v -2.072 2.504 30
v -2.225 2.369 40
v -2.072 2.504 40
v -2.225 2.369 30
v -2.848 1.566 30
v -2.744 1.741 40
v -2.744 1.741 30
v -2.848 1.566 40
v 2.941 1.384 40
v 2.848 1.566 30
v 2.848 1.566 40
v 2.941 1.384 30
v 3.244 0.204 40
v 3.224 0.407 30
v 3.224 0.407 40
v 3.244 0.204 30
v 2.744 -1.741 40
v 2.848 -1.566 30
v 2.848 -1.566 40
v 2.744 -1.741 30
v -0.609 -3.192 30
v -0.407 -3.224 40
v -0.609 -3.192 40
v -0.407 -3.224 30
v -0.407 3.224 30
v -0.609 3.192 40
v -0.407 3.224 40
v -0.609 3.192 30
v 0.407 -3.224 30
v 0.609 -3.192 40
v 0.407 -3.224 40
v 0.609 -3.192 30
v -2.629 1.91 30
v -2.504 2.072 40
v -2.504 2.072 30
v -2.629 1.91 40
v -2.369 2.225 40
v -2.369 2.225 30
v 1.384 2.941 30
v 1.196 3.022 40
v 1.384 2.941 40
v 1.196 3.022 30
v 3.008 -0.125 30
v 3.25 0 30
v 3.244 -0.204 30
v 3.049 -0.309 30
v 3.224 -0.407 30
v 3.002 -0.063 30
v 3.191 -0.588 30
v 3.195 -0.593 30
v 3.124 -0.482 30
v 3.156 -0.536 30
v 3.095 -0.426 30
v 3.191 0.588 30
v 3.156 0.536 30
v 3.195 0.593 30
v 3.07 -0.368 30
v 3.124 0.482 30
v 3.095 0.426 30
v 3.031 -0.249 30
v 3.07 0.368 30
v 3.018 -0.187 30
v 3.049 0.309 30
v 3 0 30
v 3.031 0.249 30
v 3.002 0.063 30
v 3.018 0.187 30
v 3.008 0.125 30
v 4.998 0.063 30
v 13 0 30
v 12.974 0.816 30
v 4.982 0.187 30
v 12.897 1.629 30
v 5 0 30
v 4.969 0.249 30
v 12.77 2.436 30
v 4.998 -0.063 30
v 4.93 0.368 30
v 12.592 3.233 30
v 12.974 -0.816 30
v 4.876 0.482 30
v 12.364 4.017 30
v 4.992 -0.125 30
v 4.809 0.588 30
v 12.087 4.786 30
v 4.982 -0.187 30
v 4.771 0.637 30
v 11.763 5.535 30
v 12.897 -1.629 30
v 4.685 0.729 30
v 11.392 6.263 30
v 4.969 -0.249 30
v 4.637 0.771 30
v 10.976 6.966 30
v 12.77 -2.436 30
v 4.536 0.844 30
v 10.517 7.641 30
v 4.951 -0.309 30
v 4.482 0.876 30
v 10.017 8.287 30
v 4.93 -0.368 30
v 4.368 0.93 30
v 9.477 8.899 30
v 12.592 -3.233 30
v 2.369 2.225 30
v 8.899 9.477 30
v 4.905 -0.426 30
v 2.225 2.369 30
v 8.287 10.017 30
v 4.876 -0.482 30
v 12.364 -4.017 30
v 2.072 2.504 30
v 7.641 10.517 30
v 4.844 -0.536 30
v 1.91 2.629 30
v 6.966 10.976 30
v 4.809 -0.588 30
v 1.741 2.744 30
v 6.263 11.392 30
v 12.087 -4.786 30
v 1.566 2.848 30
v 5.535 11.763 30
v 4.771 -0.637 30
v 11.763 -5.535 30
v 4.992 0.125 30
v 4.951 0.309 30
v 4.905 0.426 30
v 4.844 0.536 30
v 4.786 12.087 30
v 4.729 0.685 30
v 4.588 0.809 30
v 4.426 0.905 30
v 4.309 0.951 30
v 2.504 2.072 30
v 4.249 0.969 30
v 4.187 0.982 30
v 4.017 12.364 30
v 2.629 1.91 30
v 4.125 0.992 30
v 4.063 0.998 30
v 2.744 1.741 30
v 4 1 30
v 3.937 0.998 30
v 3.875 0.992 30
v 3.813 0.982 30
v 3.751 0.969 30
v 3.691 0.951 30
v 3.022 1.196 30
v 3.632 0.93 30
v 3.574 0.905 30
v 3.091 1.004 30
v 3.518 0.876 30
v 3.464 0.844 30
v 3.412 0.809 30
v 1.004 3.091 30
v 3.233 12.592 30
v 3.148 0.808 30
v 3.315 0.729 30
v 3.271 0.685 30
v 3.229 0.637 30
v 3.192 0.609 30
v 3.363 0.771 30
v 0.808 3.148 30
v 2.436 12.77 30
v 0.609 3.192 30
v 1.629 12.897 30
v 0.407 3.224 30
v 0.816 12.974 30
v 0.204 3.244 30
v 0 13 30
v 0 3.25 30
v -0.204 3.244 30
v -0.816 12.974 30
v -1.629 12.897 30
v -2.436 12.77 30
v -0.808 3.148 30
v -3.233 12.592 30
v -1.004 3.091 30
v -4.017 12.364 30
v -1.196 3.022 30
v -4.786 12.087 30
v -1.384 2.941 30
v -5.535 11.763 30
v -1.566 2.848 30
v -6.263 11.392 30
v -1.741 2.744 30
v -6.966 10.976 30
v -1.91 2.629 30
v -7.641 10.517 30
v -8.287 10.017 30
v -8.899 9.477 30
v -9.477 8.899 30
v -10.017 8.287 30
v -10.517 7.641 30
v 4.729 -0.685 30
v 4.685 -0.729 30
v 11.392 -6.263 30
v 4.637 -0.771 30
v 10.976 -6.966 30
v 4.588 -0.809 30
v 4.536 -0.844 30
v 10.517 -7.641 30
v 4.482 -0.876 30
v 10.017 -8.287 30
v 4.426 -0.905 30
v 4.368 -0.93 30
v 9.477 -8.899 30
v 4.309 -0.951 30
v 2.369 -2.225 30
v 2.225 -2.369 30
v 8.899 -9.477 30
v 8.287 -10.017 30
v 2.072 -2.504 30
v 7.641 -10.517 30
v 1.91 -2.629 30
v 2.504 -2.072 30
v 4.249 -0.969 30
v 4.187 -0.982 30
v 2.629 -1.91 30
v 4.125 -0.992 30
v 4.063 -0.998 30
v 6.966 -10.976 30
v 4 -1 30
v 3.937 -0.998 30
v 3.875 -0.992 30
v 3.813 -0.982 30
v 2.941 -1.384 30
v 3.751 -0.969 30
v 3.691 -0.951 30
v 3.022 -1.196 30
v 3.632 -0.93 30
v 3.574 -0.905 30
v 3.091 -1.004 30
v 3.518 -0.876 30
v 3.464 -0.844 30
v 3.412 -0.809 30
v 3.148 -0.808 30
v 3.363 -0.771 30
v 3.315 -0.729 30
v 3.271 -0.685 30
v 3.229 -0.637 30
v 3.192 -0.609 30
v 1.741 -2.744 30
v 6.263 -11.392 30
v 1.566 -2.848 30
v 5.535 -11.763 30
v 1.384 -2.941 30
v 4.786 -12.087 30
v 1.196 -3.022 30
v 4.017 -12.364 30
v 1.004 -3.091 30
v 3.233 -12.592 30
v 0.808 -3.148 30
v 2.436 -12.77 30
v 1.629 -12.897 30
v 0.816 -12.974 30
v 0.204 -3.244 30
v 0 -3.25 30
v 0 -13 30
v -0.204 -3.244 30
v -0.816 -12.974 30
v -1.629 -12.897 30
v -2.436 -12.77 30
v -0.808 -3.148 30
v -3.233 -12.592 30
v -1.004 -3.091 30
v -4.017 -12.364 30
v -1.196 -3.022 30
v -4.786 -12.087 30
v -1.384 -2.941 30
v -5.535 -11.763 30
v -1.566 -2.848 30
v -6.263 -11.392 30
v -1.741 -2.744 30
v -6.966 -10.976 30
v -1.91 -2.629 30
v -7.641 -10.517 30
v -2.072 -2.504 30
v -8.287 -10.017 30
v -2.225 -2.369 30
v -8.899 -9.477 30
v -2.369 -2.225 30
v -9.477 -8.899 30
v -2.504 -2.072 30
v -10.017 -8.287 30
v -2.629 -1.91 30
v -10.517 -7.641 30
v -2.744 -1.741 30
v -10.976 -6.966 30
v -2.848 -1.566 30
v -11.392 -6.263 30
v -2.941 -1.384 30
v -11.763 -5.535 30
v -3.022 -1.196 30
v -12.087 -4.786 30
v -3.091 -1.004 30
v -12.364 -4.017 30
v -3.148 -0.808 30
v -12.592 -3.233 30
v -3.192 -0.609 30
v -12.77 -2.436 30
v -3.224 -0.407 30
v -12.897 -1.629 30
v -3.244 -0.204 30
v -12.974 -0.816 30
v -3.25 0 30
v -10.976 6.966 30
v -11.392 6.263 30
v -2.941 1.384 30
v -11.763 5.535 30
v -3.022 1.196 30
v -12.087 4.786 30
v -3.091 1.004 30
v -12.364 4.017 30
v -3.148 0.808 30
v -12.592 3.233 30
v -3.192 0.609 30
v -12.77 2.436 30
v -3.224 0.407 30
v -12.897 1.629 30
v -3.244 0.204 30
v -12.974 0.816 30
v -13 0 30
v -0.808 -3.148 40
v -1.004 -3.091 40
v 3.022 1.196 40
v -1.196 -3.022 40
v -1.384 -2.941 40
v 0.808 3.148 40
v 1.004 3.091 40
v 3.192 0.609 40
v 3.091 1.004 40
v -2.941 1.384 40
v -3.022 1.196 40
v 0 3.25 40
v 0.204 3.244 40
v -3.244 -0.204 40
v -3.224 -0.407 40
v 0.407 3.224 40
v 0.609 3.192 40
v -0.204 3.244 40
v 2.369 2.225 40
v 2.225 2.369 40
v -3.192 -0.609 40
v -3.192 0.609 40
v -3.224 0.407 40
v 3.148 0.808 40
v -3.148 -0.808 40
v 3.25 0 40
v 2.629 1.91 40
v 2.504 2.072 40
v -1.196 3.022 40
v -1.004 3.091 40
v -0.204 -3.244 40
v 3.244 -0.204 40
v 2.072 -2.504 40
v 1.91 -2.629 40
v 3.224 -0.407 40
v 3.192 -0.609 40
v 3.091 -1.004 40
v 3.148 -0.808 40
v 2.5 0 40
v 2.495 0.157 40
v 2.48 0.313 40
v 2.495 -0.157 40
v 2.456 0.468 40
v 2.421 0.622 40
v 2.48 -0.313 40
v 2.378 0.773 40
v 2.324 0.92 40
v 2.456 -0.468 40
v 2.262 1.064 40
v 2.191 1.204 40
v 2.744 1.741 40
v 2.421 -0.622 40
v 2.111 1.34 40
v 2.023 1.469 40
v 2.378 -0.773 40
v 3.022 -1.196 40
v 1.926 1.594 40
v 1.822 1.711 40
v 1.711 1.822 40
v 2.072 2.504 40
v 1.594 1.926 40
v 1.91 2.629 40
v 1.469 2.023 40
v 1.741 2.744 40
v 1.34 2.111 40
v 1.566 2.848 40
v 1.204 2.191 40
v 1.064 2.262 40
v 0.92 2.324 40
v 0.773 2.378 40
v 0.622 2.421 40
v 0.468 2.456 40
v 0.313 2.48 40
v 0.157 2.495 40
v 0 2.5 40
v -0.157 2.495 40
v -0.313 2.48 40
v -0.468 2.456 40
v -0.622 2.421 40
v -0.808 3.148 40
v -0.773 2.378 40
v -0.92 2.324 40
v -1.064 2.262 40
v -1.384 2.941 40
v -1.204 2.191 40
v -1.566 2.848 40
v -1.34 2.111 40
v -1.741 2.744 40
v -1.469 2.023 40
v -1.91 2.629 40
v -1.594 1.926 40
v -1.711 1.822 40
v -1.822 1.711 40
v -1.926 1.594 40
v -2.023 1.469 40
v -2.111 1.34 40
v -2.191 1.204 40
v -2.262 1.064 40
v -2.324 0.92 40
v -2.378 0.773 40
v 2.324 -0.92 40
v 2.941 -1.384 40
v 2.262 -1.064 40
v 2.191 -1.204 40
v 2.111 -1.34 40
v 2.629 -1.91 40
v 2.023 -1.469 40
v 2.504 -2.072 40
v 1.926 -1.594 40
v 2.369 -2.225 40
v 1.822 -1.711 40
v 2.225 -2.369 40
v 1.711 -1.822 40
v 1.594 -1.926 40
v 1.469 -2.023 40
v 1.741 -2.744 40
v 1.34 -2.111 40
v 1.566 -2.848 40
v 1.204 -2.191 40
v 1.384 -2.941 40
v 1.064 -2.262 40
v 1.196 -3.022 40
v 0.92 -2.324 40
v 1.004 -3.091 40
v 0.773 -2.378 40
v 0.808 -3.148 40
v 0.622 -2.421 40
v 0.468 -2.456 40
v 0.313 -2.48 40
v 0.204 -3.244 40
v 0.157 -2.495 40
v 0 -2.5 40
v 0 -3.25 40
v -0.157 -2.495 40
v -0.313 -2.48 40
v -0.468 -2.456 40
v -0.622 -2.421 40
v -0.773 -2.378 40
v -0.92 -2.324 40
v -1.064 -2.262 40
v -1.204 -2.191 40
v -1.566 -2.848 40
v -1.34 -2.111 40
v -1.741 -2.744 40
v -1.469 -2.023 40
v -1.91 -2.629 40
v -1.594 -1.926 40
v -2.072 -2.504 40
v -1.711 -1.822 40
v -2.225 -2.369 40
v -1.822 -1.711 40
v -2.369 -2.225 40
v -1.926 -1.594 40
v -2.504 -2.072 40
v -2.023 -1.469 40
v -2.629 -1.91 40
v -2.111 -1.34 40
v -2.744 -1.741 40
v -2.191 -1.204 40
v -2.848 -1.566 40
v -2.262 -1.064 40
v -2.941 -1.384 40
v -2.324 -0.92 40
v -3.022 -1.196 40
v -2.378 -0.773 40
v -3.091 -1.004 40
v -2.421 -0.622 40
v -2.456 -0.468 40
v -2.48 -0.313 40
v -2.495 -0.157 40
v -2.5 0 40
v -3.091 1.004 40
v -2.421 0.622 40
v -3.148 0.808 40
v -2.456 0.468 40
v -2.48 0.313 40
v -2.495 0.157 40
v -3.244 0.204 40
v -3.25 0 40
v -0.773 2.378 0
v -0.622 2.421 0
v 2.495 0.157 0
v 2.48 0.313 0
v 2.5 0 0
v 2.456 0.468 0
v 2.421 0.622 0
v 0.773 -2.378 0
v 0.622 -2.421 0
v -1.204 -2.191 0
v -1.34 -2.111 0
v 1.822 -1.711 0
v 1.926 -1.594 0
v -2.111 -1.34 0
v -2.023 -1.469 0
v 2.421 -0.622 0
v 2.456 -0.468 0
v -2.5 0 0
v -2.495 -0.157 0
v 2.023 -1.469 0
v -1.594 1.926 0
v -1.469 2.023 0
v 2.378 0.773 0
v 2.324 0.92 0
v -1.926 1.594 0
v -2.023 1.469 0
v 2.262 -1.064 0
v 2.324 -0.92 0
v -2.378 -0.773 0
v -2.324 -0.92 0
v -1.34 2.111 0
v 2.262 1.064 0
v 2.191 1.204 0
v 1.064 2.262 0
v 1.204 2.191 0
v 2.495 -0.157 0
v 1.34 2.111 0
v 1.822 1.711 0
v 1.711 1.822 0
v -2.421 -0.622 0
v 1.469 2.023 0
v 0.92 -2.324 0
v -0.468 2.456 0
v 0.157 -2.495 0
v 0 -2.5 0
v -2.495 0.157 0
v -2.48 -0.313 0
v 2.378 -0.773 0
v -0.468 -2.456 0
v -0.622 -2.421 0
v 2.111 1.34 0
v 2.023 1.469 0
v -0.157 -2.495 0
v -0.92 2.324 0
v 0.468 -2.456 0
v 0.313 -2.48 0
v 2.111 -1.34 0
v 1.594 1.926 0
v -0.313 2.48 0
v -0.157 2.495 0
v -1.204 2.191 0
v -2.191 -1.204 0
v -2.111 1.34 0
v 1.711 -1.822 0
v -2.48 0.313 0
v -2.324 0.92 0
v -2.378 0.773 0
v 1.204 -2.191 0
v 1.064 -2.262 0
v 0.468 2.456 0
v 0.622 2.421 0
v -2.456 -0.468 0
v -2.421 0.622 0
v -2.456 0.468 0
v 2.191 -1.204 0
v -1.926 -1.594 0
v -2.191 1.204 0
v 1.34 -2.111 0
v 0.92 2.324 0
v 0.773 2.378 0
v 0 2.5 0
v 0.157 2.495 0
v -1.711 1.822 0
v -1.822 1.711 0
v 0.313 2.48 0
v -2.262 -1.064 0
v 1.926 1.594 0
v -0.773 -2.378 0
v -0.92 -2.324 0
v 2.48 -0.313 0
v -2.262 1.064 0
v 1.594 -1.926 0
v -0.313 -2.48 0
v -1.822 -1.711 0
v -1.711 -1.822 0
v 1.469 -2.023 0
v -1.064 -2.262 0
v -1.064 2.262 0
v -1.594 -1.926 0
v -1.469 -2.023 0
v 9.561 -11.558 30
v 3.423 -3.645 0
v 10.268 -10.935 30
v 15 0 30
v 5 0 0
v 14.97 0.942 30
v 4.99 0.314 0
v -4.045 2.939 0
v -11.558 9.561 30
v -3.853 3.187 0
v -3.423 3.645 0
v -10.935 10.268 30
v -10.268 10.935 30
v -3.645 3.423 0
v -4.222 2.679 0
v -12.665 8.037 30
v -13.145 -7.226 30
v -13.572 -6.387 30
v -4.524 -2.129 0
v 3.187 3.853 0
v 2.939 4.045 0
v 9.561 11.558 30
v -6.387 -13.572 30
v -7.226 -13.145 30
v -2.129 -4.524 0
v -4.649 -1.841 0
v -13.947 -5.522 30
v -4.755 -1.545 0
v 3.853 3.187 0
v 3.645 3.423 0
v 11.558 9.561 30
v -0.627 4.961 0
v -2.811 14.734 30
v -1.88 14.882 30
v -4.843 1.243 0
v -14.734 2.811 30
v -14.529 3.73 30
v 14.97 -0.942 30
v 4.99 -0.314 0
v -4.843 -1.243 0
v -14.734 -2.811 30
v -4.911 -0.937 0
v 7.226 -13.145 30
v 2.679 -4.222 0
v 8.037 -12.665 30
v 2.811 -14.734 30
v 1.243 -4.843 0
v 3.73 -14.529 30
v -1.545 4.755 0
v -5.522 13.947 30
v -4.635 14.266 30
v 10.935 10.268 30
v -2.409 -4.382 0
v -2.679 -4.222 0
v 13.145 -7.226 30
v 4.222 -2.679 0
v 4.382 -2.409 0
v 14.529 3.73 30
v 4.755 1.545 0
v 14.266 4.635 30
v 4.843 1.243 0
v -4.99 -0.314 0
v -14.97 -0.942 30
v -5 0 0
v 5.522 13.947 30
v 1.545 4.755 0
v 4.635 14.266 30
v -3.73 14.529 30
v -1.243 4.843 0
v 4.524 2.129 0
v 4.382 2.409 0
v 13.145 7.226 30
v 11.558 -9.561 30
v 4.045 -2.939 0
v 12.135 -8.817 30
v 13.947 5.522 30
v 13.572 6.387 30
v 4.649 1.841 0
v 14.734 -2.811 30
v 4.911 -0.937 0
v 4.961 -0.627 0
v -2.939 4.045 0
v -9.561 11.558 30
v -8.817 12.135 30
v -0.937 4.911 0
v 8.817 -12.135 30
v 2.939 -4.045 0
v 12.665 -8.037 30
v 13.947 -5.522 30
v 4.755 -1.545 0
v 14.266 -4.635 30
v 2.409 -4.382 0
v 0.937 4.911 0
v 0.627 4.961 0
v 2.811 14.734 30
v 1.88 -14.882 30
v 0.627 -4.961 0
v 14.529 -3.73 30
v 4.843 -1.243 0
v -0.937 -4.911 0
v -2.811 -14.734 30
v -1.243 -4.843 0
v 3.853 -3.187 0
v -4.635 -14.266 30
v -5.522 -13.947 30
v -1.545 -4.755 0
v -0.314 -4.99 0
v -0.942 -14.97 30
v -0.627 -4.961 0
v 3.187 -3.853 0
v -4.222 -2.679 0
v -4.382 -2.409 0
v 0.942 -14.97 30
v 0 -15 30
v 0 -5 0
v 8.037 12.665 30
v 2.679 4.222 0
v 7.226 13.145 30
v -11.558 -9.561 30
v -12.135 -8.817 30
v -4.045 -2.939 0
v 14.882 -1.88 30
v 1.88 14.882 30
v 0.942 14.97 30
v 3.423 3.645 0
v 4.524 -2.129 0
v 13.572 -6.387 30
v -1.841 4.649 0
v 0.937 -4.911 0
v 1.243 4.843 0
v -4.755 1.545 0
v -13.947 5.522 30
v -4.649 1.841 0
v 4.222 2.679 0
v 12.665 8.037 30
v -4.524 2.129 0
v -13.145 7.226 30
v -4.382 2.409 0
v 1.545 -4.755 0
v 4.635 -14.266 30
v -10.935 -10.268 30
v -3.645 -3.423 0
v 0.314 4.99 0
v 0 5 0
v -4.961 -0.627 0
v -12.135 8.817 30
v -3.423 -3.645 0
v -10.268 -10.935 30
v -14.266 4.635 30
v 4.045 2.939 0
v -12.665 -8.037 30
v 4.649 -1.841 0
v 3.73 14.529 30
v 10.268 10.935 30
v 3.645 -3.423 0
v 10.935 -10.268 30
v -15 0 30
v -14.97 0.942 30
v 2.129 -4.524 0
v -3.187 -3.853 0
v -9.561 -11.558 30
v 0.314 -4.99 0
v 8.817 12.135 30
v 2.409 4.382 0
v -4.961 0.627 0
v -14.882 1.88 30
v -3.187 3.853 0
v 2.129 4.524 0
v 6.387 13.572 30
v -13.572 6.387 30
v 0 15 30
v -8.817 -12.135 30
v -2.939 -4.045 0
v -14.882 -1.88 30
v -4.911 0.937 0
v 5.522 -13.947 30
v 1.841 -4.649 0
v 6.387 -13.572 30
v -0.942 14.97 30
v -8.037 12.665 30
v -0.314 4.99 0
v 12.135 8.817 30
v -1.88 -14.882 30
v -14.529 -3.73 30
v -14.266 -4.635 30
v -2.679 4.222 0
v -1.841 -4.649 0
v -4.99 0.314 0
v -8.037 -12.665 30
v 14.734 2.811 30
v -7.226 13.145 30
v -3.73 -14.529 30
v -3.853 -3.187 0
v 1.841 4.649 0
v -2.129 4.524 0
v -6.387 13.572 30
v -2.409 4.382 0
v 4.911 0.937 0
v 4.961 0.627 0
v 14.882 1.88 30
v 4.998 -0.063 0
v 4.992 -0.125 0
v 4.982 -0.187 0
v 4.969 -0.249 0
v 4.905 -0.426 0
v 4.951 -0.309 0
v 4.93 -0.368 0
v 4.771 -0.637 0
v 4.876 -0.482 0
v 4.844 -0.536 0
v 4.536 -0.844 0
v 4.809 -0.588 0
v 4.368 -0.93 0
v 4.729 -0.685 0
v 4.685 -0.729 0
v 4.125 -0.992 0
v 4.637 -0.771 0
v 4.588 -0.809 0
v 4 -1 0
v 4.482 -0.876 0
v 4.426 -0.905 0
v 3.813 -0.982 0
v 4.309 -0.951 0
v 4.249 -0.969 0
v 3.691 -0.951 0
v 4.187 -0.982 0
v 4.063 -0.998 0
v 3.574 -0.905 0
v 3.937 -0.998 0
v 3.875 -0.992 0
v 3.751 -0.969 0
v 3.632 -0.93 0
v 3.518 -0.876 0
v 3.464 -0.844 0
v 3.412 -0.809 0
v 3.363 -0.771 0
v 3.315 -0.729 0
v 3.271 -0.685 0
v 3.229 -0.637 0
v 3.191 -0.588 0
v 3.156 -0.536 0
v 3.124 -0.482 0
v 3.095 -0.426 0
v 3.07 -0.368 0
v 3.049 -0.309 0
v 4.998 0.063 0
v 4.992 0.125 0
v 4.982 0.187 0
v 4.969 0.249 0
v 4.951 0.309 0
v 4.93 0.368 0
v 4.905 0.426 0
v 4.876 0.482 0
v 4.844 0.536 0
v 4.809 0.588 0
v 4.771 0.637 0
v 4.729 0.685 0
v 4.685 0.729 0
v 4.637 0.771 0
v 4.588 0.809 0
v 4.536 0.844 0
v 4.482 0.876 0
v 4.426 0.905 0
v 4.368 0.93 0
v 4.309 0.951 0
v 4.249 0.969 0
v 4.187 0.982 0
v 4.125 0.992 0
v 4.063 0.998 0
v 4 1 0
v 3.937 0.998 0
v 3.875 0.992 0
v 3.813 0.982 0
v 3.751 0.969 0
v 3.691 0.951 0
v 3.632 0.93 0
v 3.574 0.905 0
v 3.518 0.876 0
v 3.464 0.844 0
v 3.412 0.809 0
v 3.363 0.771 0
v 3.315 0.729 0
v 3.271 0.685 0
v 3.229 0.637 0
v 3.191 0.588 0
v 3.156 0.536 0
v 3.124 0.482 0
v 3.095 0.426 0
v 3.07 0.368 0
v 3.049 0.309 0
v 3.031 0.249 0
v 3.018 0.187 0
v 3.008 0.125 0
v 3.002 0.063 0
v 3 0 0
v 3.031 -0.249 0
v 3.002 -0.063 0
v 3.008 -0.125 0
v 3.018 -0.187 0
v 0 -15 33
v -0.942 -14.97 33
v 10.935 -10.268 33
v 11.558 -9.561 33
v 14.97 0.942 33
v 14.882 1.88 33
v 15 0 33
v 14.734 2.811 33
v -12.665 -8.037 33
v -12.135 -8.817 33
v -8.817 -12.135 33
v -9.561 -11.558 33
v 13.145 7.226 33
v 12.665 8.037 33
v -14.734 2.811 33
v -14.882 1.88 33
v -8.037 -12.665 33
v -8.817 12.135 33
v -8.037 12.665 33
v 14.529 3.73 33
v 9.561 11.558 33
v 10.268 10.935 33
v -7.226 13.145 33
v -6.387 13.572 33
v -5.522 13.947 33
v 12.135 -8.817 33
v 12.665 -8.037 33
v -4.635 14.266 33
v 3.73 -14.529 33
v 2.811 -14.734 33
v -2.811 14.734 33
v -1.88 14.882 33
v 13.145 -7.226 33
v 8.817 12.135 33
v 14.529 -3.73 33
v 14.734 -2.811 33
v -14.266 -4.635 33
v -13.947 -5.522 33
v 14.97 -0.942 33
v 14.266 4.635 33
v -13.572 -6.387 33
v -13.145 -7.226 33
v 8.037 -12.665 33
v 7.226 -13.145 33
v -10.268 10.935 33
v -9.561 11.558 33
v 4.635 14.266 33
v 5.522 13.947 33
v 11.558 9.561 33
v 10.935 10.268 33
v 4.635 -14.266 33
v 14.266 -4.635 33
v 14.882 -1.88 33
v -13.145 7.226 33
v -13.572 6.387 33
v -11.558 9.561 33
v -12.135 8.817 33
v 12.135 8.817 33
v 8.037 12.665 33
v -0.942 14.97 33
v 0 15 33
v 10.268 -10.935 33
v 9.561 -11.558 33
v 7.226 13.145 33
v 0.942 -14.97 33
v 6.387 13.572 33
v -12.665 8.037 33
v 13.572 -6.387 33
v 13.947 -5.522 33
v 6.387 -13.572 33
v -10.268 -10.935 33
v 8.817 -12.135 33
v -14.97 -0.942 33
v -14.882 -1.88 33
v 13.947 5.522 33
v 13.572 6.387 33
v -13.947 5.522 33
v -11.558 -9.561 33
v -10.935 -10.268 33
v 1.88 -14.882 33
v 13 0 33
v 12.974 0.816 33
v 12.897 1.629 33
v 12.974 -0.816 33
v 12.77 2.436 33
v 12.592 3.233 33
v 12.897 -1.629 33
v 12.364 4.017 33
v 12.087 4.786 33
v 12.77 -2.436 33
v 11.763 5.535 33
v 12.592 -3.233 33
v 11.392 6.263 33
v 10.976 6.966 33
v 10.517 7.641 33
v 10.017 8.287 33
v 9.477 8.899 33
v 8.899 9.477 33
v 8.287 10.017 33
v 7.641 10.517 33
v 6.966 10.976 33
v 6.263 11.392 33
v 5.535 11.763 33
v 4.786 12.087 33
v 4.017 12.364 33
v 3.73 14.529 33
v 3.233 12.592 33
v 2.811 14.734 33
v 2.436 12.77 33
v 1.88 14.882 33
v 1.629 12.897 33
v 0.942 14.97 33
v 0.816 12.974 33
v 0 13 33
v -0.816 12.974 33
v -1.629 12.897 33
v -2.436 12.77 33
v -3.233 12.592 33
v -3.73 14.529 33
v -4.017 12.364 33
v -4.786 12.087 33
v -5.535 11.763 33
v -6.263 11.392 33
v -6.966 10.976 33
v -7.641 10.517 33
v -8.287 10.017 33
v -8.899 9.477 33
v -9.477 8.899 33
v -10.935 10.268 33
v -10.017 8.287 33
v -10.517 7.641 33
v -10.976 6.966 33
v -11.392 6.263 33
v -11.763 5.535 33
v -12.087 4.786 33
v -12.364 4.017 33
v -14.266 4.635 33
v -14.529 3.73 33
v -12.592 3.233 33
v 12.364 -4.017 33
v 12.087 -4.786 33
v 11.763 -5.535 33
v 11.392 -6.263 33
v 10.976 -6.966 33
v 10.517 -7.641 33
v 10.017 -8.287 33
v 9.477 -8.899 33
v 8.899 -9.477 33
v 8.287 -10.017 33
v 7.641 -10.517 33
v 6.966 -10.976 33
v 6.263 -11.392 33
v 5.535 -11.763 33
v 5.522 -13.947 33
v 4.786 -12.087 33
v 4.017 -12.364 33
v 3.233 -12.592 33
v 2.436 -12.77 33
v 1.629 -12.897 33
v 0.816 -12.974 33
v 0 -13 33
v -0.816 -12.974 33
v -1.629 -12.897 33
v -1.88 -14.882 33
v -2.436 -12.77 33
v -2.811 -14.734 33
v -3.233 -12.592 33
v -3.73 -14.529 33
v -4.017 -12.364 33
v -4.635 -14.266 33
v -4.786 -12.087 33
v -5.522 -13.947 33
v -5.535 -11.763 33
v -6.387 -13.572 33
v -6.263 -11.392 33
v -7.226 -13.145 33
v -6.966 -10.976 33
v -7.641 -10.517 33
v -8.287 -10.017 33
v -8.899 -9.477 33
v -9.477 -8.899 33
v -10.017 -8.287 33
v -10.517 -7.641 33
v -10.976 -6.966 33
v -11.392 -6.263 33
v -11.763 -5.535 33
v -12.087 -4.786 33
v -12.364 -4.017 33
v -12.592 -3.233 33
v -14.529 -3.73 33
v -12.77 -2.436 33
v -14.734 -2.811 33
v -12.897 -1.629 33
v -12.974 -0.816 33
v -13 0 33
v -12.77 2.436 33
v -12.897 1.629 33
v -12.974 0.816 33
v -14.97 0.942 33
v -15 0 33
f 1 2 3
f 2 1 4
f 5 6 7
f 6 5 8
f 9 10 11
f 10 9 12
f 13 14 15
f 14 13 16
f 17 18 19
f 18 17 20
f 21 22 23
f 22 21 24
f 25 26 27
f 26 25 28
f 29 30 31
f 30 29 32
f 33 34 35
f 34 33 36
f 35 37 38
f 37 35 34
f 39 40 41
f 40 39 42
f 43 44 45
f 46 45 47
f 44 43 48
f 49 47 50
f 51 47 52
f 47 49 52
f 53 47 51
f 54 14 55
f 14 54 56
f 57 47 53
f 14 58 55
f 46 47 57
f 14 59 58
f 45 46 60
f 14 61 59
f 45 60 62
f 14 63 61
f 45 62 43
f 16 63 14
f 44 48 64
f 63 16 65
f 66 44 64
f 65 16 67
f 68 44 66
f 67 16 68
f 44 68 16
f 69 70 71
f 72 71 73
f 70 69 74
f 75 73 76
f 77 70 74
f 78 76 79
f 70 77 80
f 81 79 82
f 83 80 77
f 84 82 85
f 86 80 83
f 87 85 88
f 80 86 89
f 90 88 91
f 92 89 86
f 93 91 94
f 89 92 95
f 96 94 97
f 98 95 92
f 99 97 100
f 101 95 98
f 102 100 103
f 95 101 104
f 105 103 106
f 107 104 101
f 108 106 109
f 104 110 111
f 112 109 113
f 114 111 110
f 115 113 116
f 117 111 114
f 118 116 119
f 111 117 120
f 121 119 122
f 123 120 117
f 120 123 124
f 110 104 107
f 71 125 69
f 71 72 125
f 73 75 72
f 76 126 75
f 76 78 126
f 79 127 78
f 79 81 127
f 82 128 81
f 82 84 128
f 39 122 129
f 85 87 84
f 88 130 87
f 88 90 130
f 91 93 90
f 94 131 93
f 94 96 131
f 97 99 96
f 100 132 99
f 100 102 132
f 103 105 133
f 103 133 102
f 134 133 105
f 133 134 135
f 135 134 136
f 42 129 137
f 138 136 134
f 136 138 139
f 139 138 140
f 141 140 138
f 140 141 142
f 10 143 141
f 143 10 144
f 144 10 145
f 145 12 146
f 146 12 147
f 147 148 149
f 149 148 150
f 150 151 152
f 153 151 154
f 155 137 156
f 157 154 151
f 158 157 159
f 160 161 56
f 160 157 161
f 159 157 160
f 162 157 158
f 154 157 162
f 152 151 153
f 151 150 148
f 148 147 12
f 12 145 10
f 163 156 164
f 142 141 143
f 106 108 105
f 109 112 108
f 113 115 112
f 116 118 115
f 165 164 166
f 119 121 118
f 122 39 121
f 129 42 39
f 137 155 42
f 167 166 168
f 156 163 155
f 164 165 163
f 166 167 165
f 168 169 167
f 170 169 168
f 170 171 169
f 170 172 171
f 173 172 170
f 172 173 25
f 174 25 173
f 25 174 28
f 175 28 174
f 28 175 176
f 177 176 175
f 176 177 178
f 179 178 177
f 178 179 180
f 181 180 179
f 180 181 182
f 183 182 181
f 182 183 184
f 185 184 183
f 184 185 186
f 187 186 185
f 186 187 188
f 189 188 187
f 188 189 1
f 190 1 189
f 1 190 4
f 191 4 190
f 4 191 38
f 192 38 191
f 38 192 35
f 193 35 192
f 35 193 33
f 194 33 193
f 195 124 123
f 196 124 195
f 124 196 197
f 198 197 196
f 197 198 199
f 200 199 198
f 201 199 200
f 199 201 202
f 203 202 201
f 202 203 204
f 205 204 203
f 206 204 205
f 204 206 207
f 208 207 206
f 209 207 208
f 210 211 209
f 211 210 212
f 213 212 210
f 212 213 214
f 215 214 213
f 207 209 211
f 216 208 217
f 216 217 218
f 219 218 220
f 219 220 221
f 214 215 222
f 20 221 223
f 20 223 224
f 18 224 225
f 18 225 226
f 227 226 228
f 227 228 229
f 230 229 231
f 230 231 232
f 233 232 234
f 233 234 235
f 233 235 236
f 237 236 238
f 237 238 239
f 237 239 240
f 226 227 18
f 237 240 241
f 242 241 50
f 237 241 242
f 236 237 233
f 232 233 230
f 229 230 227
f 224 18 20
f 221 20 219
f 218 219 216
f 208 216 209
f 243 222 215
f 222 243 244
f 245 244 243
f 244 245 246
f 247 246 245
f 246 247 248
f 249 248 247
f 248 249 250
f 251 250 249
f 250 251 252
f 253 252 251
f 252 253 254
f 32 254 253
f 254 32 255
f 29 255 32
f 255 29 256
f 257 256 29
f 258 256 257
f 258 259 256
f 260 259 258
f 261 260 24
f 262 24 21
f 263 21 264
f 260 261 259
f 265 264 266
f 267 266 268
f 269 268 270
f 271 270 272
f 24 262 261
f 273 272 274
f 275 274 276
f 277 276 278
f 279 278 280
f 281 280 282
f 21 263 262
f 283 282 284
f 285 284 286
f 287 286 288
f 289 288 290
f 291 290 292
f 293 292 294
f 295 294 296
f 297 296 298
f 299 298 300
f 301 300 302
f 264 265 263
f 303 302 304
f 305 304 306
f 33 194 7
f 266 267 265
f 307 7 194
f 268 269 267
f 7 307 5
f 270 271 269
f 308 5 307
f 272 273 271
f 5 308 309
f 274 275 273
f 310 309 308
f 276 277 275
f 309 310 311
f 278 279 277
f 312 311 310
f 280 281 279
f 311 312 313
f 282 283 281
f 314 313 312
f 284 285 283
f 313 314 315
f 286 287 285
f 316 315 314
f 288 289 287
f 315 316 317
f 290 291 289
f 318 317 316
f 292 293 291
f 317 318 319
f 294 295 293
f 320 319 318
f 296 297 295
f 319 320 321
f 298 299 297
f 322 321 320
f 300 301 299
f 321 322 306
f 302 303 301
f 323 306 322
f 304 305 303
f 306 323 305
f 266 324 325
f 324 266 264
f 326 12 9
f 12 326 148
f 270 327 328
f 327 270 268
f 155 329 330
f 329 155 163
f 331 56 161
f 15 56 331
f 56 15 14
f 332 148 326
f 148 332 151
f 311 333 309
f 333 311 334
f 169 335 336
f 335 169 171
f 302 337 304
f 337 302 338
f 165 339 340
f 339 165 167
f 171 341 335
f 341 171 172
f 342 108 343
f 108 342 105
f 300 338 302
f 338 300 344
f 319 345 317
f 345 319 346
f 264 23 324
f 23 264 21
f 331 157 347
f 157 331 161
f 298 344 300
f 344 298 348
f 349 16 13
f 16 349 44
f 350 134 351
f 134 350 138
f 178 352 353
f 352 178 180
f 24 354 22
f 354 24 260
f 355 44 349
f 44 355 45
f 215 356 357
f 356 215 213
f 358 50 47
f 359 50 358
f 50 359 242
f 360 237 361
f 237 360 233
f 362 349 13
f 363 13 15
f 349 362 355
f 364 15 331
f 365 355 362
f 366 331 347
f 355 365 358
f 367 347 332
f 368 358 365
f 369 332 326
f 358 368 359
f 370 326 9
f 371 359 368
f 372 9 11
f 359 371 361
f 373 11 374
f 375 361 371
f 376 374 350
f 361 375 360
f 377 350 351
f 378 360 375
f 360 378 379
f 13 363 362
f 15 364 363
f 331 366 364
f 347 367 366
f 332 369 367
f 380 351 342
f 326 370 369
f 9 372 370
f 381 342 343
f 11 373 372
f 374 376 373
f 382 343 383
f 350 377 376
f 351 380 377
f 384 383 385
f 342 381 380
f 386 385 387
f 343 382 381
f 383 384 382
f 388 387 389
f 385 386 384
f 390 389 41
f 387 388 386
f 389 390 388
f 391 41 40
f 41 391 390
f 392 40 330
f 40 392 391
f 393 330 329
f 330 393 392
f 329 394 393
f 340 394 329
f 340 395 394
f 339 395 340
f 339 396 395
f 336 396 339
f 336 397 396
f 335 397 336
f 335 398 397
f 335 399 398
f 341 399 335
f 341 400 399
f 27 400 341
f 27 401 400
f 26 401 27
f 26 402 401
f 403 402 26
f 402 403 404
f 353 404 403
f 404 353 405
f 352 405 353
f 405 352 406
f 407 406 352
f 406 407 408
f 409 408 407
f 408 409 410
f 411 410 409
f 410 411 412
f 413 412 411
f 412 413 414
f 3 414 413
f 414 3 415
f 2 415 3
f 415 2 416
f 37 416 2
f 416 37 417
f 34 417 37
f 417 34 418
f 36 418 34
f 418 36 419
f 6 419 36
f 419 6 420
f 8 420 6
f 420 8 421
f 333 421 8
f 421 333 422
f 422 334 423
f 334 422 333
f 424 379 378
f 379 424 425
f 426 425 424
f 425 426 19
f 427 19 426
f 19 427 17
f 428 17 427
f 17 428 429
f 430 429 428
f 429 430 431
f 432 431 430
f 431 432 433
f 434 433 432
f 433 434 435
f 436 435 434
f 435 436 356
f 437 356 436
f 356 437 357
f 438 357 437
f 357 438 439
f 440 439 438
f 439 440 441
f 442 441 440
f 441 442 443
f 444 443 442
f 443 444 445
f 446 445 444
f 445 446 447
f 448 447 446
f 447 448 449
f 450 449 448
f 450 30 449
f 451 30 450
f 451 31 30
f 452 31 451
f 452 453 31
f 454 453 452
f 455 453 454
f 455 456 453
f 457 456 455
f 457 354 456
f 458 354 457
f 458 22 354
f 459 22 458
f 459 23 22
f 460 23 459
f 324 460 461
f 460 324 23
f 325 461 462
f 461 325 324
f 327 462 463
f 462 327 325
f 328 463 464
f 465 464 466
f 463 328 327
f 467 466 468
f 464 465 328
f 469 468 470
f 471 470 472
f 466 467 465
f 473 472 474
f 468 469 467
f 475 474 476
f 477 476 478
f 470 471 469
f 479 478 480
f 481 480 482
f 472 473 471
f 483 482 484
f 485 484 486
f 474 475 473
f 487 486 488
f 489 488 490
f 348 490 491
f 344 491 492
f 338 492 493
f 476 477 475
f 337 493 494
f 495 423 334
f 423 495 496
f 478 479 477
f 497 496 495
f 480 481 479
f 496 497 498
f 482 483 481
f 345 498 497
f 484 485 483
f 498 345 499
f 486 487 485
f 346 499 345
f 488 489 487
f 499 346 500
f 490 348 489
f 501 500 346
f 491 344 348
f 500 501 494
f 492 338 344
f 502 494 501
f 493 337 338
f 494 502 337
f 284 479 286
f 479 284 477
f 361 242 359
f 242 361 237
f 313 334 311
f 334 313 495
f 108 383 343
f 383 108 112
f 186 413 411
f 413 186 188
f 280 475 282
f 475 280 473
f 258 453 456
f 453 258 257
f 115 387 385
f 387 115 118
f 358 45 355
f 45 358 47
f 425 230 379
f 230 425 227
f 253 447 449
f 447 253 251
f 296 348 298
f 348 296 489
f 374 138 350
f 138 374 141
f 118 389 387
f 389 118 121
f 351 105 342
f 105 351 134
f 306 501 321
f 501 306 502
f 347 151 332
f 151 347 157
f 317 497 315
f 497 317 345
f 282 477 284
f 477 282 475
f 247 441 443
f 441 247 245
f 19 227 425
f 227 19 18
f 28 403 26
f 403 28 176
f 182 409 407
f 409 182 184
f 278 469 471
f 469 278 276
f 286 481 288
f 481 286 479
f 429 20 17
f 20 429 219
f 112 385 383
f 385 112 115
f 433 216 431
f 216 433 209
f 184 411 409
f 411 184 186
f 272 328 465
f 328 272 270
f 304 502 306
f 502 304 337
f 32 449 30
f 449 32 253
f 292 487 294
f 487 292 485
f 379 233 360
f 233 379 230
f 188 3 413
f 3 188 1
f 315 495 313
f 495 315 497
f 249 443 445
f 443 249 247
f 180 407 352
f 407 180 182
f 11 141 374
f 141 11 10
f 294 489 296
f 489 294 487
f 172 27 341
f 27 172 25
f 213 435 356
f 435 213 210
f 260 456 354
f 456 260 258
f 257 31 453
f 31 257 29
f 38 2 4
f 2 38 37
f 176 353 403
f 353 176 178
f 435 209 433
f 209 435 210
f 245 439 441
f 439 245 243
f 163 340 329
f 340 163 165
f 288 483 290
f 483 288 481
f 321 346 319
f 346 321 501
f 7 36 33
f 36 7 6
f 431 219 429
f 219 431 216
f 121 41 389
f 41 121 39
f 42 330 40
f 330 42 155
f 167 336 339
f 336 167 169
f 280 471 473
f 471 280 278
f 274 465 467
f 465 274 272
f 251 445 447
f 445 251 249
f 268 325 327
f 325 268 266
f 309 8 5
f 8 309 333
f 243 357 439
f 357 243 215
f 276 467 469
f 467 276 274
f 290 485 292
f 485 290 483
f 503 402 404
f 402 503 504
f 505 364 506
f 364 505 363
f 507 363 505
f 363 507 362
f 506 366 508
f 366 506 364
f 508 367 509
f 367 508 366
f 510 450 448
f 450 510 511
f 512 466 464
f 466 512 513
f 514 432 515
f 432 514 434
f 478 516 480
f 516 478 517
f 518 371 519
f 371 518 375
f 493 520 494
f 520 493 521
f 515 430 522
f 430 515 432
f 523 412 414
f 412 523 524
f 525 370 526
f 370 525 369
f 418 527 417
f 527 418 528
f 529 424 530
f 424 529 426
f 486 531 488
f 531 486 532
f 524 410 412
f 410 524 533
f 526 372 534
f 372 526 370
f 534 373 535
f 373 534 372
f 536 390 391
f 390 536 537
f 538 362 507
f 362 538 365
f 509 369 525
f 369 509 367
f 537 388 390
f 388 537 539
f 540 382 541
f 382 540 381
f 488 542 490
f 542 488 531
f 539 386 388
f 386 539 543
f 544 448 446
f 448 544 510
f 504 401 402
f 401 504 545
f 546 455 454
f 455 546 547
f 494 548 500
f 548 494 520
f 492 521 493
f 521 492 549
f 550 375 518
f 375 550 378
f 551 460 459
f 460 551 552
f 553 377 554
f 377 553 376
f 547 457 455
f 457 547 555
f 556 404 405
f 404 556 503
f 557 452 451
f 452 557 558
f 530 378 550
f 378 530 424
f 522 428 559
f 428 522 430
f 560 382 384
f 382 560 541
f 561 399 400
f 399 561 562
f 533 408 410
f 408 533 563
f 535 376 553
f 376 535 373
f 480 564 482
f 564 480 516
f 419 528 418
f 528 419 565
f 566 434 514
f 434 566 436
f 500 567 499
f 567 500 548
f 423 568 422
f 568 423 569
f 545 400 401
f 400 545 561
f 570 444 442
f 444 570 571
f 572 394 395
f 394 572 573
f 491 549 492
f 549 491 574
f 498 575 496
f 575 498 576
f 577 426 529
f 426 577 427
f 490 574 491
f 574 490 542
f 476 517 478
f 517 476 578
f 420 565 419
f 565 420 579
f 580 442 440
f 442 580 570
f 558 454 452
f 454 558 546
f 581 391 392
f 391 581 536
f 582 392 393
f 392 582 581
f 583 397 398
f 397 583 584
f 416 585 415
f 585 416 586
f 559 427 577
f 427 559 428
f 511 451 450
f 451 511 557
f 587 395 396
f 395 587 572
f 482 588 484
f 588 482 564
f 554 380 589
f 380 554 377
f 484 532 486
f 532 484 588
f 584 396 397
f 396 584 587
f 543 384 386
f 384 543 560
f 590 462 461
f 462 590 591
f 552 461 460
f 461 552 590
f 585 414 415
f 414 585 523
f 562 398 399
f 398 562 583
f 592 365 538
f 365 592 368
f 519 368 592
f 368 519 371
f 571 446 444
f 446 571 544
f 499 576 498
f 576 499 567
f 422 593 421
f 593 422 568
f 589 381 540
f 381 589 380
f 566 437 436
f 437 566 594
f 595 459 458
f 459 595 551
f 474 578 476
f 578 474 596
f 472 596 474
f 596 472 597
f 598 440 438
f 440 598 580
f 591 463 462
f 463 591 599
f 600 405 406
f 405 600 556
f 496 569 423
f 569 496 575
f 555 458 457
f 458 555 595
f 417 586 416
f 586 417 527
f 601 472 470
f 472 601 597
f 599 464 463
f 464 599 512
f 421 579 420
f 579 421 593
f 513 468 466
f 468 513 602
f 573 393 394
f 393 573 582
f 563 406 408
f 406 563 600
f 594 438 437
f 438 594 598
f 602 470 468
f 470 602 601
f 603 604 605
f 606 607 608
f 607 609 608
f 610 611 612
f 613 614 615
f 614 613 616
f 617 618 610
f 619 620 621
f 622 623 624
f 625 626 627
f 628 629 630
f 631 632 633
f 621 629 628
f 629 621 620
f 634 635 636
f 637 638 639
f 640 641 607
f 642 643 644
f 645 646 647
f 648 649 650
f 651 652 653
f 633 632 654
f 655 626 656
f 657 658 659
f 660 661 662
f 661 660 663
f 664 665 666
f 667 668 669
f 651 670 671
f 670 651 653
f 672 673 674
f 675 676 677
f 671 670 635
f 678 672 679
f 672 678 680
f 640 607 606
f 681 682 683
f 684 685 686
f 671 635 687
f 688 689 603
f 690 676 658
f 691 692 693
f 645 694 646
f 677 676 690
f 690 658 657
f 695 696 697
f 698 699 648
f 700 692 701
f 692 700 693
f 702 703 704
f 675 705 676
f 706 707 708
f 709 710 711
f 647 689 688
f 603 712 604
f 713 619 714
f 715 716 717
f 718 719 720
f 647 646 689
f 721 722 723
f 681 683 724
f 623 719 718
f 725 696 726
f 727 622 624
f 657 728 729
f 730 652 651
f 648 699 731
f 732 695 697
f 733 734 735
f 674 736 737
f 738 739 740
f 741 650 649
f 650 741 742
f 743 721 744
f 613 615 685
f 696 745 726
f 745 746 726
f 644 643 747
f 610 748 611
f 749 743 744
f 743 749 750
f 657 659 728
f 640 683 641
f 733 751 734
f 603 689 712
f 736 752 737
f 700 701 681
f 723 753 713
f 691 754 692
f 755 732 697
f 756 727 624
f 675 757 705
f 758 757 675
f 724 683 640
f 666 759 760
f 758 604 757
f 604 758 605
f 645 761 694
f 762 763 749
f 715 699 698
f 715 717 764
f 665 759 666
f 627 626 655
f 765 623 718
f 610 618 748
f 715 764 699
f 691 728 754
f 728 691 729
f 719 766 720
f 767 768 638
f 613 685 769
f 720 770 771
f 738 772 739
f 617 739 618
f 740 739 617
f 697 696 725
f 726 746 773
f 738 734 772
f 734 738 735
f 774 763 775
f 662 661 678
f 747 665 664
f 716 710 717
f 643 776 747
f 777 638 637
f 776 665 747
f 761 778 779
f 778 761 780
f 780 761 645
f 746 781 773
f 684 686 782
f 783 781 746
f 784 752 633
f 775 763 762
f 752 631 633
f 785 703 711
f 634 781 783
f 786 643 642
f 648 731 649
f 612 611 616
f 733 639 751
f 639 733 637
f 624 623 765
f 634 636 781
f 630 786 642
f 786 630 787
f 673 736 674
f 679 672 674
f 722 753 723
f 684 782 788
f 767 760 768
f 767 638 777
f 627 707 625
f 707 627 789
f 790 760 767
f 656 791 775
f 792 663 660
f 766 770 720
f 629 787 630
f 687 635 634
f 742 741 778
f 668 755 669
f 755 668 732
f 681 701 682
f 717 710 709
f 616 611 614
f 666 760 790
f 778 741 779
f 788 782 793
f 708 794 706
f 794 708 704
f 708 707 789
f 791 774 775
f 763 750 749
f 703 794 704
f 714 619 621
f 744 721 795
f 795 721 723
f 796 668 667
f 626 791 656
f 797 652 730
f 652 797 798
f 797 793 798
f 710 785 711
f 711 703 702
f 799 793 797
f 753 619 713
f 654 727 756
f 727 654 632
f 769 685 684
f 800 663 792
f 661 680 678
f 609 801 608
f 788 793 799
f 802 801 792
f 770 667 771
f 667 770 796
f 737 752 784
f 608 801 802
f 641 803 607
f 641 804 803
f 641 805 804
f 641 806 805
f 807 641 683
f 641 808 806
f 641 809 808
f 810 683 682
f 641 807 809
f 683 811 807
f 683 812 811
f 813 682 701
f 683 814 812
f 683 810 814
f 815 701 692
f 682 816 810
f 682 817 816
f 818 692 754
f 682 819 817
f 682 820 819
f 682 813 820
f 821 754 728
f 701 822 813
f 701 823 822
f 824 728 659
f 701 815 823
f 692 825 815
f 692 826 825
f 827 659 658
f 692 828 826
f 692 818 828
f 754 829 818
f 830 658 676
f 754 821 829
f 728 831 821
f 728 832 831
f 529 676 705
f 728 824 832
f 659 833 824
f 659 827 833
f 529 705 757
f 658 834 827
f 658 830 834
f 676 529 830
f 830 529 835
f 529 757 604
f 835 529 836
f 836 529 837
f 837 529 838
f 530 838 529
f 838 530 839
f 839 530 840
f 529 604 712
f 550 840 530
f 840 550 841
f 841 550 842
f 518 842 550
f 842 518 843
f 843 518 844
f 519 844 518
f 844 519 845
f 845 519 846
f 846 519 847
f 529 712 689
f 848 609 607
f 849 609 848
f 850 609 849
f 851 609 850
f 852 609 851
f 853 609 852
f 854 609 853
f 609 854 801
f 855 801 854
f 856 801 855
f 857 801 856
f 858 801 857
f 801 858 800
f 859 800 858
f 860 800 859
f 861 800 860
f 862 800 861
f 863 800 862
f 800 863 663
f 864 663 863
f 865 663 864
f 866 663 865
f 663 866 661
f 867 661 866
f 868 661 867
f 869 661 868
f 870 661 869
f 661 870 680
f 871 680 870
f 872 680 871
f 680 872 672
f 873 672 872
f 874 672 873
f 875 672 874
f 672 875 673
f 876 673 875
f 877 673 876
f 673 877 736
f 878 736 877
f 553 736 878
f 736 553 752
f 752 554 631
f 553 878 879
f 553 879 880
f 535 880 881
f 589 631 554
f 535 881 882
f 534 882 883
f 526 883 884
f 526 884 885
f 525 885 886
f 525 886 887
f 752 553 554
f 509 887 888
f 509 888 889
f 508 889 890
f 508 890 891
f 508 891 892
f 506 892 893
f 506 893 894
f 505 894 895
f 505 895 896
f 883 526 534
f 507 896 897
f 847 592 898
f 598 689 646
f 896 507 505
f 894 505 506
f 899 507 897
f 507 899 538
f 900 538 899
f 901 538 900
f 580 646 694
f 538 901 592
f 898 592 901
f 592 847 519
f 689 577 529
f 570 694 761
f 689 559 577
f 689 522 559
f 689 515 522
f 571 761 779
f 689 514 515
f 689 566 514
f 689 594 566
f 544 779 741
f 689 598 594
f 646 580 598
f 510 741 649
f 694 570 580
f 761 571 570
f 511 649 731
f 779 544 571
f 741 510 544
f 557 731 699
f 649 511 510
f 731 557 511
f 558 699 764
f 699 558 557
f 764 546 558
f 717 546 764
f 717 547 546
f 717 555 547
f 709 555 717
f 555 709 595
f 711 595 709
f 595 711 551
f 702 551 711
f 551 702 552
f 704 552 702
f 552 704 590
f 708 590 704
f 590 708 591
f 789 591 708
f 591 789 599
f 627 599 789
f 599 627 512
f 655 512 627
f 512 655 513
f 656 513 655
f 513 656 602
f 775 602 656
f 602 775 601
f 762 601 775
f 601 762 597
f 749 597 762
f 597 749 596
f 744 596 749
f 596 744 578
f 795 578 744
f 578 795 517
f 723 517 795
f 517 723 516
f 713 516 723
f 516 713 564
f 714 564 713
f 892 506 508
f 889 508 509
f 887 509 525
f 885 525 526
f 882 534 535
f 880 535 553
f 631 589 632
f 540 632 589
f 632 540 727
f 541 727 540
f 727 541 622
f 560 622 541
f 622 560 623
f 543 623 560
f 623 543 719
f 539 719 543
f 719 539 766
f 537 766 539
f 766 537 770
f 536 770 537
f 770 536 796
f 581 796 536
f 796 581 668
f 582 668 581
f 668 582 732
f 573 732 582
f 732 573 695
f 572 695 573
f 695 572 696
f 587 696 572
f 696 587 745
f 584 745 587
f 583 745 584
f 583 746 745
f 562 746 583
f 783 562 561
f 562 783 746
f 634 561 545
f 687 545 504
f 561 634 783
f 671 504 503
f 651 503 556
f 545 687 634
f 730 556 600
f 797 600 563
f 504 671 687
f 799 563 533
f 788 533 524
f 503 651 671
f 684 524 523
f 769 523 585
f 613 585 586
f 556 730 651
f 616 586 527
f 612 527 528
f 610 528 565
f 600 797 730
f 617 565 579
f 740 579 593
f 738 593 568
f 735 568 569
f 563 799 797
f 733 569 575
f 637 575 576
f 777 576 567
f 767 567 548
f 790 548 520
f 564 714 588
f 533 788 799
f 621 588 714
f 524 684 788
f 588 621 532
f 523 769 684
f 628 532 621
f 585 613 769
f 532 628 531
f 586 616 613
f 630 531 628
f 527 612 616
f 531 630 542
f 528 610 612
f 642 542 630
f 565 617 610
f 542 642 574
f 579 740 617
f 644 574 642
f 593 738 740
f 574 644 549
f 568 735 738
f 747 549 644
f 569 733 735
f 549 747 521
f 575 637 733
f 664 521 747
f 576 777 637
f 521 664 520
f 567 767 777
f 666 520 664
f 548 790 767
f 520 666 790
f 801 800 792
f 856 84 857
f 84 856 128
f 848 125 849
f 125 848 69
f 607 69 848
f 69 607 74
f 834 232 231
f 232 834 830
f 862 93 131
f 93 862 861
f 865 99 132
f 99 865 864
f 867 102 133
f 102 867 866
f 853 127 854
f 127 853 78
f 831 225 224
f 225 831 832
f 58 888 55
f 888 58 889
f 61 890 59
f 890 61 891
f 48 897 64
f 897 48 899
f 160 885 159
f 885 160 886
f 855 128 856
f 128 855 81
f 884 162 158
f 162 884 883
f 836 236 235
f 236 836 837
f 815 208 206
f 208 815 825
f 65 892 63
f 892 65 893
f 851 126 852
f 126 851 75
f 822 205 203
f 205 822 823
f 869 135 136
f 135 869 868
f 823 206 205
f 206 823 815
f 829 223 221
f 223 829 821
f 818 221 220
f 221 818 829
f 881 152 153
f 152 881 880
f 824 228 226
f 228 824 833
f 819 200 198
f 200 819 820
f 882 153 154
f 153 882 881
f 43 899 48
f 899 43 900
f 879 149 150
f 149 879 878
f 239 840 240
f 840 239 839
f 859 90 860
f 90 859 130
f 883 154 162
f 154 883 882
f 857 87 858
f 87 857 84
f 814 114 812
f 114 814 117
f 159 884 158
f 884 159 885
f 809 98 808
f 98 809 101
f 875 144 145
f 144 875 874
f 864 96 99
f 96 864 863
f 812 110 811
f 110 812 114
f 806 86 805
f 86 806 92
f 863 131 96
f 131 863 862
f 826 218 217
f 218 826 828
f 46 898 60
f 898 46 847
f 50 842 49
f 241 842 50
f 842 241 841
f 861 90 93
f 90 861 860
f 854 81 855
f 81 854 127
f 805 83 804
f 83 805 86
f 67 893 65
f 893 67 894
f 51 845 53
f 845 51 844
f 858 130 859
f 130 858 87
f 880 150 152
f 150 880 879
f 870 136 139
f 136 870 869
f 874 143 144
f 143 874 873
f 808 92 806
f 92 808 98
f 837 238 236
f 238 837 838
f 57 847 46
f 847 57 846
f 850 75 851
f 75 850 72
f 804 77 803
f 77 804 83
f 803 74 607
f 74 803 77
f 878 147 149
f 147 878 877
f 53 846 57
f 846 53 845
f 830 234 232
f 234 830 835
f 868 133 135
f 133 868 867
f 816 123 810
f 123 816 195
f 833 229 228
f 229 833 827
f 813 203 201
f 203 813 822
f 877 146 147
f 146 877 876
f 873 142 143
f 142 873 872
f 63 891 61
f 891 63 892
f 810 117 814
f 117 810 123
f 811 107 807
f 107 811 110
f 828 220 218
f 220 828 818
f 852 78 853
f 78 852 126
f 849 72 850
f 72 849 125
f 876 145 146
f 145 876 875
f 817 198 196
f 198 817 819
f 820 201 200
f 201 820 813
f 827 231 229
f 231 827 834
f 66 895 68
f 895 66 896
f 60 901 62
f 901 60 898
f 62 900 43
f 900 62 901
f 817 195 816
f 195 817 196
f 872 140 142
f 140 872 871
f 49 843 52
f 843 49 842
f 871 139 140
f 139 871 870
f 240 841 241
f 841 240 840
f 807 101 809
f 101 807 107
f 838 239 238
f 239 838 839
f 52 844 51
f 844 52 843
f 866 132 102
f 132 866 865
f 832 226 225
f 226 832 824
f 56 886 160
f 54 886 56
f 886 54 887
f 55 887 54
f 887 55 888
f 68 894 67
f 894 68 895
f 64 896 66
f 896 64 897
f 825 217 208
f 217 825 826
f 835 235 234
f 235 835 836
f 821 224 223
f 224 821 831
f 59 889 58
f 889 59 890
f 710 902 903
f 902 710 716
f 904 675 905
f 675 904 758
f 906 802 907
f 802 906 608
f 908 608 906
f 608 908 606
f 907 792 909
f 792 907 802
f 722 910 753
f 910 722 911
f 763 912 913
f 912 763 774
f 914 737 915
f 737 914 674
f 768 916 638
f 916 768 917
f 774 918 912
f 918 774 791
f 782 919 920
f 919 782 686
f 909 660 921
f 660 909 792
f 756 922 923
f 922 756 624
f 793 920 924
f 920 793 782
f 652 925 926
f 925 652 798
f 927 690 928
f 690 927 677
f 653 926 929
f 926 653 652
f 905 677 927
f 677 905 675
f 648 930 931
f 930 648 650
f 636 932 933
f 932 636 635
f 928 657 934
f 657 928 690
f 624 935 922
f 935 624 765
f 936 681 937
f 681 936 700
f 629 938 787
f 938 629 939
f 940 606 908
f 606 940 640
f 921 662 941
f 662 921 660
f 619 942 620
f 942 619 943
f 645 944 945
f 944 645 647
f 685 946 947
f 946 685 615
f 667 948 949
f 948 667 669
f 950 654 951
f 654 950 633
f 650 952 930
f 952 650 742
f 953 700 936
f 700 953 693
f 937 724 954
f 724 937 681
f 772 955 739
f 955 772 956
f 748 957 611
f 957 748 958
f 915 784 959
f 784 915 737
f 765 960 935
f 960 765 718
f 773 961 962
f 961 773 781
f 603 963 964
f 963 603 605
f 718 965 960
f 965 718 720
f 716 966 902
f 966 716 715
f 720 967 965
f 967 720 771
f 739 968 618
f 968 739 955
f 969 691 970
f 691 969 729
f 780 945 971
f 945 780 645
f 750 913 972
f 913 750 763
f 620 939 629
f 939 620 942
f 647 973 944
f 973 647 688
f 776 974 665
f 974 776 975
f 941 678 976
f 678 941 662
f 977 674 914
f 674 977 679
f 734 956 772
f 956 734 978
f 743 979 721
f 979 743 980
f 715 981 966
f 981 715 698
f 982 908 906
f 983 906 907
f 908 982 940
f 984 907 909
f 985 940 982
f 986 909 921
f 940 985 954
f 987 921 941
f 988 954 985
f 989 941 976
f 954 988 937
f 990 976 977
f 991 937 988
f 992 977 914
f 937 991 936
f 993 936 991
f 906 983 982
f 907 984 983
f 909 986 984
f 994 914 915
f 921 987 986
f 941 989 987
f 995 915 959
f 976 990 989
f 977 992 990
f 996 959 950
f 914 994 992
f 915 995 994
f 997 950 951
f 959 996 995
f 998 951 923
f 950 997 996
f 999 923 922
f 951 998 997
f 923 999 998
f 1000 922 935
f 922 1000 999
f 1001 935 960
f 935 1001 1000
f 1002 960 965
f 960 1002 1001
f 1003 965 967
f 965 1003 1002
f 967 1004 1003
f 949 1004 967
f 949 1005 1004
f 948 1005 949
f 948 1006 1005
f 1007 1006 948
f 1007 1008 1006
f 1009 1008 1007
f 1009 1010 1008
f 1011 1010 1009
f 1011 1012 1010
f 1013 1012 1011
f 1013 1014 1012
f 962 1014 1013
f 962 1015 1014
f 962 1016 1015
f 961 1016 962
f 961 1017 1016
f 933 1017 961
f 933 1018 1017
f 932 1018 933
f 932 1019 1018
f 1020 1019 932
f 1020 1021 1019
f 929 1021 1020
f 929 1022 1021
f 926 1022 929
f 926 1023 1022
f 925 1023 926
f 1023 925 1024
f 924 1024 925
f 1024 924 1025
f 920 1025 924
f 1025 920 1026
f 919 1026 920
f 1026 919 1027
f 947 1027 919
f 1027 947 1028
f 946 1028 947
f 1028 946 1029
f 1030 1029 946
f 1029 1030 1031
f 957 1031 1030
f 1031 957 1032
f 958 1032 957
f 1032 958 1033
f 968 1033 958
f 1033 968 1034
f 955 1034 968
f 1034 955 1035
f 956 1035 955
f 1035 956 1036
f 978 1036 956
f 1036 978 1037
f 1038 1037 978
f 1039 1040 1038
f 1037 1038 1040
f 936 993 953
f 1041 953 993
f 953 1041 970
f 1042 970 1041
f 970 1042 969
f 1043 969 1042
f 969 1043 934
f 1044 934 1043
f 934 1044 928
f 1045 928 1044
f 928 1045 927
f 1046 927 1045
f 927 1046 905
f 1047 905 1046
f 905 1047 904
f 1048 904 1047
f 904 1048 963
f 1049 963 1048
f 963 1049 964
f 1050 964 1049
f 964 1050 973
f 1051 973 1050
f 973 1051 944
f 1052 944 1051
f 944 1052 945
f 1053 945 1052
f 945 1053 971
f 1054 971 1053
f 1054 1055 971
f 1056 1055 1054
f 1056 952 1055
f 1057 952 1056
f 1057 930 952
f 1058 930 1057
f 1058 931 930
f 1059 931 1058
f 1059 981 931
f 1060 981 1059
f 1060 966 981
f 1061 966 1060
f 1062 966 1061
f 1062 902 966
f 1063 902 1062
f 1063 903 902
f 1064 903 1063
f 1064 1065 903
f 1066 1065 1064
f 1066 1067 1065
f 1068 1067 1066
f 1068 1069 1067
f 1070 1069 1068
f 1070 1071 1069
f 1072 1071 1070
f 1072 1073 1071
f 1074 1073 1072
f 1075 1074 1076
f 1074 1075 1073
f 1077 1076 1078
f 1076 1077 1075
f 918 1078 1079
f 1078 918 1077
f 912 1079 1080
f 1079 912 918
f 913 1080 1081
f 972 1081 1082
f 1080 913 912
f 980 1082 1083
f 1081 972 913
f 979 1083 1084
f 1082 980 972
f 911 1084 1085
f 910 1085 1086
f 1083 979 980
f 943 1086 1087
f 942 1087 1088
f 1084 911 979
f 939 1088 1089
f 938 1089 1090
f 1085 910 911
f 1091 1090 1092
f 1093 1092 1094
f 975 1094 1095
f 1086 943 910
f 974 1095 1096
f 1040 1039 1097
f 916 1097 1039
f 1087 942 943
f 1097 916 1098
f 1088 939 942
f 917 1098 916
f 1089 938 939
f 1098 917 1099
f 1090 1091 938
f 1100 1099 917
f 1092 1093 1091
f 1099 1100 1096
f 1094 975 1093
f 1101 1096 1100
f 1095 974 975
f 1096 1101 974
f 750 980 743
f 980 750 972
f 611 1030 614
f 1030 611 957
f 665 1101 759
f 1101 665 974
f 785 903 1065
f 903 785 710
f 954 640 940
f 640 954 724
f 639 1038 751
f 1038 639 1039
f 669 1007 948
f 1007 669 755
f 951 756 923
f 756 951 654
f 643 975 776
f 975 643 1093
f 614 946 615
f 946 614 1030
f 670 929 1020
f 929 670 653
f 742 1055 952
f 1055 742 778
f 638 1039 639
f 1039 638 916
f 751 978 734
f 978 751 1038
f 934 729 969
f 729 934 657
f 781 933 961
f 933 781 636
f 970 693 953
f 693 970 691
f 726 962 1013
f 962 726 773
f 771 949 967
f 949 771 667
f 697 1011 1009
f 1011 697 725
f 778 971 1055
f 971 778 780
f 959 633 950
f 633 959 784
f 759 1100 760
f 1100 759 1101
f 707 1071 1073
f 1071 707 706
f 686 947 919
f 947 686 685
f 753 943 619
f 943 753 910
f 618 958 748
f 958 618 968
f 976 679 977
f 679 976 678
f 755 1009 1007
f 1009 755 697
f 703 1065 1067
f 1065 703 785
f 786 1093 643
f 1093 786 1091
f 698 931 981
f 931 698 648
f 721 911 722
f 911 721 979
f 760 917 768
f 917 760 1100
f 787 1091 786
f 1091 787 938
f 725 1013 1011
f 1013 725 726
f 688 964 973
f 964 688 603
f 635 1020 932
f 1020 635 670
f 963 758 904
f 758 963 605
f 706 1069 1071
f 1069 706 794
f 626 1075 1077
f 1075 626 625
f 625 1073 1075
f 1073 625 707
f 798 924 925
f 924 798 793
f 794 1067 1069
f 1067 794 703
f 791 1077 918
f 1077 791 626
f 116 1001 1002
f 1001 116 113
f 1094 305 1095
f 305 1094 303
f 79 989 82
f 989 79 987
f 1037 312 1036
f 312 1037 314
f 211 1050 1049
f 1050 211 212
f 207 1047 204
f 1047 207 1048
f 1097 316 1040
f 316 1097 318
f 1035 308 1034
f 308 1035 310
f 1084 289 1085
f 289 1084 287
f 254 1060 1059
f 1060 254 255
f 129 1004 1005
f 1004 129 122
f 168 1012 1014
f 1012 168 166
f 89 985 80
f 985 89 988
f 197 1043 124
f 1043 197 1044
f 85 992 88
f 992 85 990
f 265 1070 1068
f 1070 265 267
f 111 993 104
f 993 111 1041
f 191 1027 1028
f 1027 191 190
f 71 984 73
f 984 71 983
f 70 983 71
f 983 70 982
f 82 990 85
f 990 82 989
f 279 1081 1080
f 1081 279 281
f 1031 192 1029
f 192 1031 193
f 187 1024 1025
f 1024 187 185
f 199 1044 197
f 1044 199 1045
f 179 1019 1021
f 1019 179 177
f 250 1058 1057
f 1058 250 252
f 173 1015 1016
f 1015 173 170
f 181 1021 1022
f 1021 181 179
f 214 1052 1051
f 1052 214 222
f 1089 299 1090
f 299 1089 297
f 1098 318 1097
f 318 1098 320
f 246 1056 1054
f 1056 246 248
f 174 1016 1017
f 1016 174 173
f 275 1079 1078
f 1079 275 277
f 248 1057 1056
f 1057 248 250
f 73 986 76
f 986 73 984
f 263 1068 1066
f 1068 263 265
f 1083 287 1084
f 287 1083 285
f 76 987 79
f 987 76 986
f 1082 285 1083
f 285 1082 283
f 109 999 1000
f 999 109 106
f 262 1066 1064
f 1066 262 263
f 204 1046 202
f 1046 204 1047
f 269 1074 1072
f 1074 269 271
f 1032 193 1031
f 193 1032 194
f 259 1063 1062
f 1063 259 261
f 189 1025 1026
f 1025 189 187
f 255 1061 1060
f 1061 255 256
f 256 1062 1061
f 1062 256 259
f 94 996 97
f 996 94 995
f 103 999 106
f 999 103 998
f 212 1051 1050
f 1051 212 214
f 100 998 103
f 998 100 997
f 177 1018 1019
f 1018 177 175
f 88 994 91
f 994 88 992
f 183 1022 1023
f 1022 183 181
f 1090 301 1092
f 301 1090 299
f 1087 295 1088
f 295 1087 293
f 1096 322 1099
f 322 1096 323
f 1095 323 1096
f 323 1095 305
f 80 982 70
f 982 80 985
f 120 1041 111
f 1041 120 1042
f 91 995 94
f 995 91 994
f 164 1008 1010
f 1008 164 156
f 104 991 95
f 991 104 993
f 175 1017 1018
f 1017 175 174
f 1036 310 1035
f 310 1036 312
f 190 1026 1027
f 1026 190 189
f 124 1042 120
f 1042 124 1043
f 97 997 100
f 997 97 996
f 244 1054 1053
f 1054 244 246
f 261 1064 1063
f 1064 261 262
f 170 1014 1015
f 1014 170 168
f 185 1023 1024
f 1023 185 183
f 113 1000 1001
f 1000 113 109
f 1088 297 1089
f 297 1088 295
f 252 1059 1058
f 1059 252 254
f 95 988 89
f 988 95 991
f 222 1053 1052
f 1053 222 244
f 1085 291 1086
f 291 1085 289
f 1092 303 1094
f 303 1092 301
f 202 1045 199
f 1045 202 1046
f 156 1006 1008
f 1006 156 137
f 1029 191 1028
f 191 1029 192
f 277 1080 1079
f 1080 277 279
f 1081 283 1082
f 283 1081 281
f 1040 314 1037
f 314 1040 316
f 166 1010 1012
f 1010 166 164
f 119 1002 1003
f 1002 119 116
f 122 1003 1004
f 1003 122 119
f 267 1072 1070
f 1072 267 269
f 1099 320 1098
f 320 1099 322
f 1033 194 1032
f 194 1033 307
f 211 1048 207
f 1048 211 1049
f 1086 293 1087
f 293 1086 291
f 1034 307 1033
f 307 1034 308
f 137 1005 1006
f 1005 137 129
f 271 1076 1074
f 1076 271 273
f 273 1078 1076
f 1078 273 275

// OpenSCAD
/*
    Design of an adapter to fill ciss tanks using Epson 102 series or similar
    
    The idea is to remove the cap of the ink tank we want to refill, position the adapter and then place the bottle to fill. Lift the bottle once the desired ink level has been reached.
    Ideally, there should be an adapter per ink colour, which should be washed with water and dried after use.
    
    ©Filippo Falezza 2022, released under GPLv3 and followings
    
    Scale= 1unit/1mm
*/

/*
* NEED to measure the followings:
* tank hole diameter
* tank hole ring cut diameter (optional) - il gradino che c'e' nel buco per intendersi
* epson refill inlet diameter
*/

//Variables
$fn=100;

air_hole = 2;
air_offset = 4;
inlet_outer_dia = 6.5;
inlet_inner_dia = 5;
inlet_height = 7+3;
cylinder_diameter = 20;
cylinder_diameter_1 = 30;
cylinder_height = 30;
//lower diameter is currently 10mm diameter, which looks ok

ring_offset = 20;
ring_height = 3;
ring_thickness = 5;
ring_vertical_offset = -5;

edge_height = 3;
edge_thickness = 2;

//main cone
difference(){
    translate([0,0,0])
    cylinder(h = cylinder_height, r1 = inlet_inner_dia, r2=cylinder_diameter/2 + ring_thickness);
    
    translate([0,0,0])
    //cylinder(h=30, d= 20 - (walls_thickness*2));
    cylinder(h=cylinder_height, d= inlet_inner_dia);

    //air hole
    translate([air_offset,0,0])
    cylinder(h=cylinder_height, d=air_hole);
}

//small edge
difference(){
translate([0,0,cylinder_height])
cylinder(h = edge_height, d=cylinder_diameter_1);
    
translate([0,0,cylinder_height])
    cylinder(h=edge_height, d= cylinder_diameter_1 - (edge_thickness*2));
}

//inlet
difference(){
translate([0,0,cylinder_height])
cylinder(h=inlet_height,d=inlet_outer_dia);

translate([0,0,cylinder_height])
cylinder(h=inlet_height,d=inlet_inner_dia);
}
